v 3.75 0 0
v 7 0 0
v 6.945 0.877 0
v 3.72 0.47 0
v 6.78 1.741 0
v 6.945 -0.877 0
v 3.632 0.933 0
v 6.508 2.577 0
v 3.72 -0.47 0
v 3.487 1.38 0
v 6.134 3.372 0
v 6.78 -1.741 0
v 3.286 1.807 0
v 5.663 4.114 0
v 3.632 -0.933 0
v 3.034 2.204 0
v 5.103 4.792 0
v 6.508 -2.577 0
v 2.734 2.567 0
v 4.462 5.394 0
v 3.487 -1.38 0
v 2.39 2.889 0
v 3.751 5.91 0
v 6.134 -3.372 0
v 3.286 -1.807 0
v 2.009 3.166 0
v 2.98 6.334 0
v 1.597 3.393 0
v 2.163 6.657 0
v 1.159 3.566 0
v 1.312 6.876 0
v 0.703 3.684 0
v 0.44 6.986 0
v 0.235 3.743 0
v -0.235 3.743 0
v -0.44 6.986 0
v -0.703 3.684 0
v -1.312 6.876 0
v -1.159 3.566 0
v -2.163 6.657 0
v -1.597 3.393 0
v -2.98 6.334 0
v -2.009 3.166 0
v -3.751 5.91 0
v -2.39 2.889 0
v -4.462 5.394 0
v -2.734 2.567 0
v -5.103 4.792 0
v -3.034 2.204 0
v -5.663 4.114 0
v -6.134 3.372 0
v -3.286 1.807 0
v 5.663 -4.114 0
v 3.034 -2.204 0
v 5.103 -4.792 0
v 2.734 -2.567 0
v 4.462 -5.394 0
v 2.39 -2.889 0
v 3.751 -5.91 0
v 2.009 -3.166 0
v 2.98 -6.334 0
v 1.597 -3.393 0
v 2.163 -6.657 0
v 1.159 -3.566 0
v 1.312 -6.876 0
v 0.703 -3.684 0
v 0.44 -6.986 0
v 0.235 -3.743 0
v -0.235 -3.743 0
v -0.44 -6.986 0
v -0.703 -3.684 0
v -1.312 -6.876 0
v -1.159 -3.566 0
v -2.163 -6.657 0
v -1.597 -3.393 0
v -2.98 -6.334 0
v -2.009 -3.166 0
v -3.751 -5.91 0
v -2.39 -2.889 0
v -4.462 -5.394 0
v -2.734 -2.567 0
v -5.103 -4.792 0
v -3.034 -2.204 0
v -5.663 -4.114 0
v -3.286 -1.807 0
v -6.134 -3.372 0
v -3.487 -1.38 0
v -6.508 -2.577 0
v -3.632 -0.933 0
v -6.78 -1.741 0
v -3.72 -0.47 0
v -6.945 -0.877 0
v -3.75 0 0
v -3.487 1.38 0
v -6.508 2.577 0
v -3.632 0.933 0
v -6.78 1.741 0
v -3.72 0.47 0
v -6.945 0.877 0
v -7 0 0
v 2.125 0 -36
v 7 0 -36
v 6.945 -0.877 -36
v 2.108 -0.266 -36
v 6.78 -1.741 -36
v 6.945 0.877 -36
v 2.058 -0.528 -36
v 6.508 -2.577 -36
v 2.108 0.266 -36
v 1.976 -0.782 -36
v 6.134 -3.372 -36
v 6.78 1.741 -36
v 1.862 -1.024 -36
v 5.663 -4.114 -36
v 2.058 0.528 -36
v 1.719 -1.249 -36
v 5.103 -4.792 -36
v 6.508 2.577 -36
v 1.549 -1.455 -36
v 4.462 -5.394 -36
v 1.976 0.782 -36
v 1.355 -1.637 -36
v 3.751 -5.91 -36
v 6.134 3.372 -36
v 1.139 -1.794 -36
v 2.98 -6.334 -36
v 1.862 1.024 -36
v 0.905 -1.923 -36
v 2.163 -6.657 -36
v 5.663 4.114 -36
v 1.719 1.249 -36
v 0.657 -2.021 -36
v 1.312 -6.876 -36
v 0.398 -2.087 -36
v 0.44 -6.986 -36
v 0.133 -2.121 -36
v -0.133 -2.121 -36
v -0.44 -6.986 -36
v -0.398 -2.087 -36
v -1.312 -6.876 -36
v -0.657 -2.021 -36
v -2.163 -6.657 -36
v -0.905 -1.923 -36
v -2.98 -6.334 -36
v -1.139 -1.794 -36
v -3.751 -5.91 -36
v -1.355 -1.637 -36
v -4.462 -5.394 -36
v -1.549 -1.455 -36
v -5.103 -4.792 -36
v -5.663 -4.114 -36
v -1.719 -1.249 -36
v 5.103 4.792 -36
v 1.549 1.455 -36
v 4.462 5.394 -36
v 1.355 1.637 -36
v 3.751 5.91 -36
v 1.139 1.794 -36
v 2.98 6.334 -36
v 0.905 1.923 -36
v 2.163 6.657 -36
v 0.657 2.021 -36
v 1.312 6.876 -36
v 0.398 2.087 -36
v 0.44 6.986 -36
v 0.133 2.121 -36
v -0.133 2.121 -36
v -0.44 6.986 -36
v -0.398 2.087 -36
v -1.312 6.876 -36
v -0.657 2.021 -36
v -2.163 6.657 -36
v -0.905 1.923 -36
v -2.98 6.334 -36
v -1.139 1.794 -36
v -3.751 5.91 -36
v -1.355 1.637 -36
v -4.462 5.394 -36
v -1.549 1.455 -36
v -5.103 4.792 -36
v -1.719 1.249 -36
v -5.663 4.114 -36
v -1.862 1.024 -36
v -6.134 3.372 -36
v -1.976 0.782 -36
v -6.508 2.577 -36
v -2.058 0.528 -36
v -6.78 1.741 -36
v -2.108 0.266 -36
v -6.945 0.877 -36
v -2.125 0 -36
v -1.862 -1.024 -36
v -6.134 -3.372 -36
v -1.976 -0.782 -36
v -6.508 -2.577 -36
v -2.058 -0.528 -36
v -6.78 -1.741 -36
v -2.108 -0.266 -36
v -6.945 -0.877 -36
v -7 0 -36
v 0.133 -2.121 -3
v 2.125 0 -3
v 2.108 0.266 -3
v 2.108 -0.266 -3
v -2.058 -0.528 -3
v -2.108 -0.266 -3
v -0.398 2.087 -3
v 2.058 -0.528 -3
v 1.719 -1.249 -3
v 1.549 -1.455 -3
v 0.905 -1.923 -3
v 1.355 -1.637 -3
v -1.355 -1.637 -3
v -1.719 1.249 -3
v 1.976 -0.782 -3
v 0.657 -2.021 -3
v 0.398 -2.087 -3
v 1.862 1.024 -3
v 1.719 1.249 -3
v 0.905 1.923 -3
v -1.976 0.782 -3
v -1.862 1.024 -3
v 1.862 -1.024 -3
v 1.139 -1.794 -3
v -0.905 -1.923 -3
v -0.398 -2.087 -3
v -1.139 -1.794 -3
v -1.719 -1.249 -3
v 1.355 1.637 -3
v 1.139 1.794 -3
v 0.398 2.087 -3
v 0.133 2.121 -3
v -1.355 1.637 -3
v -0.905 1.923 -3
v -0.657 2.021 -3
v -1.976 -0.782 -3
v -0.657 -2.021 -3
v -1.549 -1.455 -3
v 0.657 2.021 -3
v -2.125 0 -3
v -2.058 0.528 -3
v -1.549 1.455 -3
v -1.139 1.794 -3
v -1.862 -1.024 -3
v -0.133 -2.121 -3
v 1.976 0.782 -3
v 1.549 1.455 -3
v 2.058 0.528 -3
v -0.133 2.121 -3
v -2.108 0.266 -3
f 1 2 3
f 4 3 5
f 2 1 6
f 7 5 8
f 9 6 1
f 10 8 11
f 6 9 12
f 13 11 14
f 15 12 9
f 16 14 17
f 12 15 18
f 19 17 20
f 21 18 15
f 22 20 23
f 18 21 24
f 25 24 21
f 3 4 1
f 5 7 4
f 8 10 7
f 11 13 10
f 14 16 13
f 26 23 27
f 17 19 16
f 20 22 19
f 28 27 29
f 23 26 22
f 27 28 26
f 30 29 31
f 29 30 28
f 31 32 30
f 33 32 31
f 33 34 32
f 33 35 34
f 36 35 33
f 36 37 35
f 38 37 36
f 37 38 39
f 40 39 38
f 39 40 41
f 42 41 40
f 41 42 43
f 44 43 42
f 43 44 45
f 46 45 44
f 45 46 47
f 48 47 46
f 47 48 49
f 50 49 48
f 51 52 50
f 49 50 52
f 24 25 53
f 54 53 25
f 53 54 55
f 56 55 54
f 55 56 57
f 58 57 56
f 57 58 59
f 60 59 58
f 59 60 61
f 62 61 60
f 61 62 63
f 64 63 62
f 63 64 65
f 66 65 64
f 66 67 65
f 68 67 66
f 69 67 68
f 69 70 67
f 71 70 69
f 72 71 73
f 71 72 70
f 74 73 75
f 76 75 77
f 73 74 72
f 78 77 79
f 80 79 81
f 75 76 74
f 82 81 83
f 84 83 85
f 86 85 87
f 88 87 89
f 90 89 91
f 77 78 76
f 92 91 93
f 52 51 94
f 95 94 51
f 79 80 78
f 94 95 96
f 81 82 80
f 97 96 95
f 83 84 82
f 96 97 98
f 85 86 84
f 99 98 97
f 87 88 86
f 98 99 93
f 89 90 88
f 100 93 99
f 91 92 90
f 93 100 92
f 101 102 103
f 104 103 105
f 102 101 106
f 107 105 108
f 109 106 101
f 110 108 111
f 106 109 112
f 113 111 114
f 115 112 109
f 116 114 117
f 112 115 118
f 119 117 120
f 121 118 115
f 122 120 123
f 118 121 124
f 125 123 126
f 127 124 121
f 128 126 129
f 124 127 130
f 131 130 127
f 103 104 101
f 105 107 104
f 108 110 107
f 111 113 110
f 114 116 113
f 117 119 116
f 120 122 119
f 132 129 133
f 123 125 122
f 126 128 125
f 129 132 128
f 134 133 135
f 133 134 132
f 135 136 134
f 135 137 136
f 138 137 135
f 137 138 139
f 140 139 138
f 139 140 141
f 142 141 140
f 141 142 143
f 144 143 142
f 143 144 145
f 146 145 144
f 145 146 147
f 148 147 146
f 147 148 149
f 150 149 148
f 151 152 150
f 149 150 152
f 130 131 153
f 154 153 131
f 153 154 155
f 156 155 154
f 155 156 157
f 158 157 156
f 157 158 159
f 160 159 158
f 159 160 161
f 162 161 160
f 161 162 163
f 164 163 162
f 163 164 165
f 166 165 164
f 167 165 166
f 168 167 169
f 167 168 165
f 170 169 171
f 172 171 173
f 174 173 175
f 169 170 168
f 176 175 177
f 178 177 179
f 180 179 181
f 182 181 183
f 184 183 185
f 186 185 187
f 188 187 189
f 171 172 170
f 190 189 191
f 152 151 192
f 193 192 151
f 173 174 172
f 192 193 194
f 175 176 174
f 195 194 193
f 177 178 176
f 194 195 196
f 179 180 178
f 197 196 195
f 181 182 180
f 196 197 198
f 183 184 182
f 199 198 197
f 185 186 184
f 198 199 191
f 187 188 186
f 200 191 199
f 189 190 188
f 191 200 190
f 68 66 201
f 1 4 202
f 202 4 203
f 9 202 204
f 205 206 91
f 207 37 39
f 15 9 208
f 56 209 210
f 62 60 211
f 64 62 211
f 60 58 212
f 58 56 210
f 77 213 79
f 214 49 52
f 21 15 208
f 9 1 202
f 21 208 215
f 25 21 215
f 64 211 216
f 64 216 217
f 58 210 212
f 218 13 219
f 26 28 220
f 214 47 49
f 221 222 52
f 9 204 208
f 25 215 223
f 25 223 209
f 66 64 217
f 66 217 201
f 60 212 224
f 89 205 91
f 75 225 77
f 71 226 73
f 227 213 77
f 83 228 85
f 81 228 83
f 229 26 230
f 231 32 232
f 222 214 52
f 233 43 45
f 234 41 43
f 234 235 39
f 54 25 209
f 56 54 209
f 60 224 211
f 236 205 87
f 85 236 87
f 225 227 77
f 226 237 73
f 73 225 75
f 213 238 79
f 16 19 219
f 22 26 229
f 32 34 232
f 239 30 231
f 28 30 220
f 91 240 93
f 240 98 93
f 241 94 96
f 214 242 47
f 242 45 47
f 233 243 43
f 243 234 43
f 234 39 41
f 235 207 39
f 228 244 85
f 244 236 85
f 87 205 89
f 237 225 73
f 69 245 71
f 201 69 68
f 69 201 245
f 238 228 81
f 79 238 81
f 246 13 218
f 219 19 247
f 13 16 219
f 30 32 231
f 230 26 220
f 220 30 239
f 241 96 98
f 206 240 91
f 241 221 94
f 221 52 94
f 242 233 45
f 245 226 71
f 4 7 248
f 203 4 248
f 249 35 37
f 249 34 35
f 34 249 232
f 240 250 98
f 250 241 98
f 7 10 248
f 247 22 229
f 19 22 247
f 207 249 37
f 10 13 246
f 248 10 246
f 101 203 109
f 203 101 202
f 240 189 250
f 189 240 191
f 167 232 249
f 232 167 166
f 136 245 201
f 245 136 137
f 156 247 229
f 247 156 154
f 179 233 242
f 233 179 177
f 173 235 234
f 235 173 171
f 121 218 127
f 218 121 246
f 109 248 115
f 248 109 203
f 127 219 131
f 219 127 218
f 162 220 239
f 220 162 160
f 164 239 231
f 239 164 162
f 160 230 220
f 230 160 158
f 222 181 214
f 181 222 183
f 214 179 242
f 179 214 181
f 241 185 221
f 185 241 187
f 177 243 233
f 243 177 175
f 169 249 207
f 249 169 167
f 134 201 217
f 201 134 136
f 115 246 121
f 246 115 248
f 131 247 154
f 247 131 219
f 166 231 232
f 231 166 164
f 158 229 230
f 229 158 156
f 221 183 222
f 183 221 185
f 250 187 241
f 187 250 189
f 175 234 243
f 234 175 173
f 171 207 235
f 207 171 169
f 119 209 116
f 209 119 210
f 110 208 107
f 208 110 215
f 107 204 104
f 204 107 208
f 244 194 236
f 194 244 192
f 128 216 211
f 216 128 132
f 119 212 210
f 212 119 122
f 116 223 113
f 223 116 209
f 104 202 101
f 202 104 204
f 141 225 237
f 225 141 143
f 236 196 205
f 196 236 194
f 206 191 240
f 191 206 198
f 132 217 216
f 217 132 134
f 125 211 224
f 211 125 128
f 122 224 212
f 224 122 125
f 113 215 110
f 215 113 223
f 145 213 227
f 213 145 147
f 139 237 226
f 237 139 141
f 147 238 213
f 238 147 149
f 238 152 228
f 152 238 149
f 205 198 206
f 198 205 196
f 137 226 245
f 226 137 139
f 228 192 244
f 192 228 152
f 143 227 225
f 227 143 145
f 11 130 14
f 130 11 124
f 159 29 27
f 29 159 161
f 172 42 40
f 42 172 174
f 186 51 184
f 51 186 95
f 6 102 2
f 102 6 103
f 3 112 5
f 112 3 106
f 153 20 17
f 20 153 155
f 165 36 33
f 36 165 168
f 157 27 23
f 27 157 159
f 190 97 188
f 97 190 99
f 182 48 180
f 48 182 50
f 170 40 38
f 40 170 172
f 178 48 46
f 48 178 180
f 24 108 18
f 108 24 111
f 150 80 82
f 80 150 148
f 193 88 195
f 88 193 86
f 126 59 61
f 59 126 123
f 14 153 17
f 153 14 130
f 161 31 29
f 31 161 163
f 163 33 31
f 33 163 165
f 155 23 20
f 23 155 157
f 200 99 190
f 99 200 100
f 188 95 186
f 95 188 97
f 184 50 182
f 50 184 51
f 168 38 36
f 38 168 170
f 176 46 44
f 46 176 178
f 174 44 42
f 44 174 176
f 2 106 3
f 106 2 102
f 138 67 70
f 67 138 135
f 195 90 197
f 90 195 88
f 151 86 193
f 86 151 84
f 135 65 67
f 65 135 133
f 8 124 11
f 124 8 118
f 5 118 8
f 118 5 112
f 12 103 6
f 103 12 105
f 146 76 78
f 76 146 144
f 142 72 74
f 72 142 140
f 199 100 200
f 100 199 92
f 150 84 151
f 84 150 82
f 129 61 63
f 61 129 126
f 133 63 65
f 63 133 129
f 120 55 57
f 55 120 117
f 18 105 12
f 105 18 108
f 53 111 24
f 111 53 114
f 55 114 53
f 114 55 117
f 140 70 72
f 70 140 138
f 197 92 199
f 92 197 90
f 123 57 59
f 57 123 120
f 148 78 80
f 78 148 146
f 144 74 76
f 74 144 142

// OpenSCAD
$fn = 50;


difference() {
	union() {
		translate(v = [0, 0, -36.0000000000]) {
			cylinder(h = 36, r = 7.0000000000);
		}
		cylinder(h = 0, r = 10.0000000000);
	}
	union() {
		translate(v = [0, 0, 0]) {
			rotate(a = [0, 0, 0]) {
				difference() {
					union() {
						#translate(v = [0, 0, -36.0000000000]) {
							cylinder(h = 36, r = 2.0000000000);
						}
						#translate(v = [0, 0, -3]) {
							cylinder(h = 3, r = 7.0000000000, r1 = 2.1250000000, r2 = 3.7500000000);
						}
						#translate(v = [0, 0, -36.0000000000]) {
							cylinder(h = 36, r = 2.1250000000);
						}
						#translate(v = [0, 0, -36.0000000000]) {
							cylinder(h = 36, r = 2.0000000000);
						}
					}
					union();
				}
			}
		}
	}
}
